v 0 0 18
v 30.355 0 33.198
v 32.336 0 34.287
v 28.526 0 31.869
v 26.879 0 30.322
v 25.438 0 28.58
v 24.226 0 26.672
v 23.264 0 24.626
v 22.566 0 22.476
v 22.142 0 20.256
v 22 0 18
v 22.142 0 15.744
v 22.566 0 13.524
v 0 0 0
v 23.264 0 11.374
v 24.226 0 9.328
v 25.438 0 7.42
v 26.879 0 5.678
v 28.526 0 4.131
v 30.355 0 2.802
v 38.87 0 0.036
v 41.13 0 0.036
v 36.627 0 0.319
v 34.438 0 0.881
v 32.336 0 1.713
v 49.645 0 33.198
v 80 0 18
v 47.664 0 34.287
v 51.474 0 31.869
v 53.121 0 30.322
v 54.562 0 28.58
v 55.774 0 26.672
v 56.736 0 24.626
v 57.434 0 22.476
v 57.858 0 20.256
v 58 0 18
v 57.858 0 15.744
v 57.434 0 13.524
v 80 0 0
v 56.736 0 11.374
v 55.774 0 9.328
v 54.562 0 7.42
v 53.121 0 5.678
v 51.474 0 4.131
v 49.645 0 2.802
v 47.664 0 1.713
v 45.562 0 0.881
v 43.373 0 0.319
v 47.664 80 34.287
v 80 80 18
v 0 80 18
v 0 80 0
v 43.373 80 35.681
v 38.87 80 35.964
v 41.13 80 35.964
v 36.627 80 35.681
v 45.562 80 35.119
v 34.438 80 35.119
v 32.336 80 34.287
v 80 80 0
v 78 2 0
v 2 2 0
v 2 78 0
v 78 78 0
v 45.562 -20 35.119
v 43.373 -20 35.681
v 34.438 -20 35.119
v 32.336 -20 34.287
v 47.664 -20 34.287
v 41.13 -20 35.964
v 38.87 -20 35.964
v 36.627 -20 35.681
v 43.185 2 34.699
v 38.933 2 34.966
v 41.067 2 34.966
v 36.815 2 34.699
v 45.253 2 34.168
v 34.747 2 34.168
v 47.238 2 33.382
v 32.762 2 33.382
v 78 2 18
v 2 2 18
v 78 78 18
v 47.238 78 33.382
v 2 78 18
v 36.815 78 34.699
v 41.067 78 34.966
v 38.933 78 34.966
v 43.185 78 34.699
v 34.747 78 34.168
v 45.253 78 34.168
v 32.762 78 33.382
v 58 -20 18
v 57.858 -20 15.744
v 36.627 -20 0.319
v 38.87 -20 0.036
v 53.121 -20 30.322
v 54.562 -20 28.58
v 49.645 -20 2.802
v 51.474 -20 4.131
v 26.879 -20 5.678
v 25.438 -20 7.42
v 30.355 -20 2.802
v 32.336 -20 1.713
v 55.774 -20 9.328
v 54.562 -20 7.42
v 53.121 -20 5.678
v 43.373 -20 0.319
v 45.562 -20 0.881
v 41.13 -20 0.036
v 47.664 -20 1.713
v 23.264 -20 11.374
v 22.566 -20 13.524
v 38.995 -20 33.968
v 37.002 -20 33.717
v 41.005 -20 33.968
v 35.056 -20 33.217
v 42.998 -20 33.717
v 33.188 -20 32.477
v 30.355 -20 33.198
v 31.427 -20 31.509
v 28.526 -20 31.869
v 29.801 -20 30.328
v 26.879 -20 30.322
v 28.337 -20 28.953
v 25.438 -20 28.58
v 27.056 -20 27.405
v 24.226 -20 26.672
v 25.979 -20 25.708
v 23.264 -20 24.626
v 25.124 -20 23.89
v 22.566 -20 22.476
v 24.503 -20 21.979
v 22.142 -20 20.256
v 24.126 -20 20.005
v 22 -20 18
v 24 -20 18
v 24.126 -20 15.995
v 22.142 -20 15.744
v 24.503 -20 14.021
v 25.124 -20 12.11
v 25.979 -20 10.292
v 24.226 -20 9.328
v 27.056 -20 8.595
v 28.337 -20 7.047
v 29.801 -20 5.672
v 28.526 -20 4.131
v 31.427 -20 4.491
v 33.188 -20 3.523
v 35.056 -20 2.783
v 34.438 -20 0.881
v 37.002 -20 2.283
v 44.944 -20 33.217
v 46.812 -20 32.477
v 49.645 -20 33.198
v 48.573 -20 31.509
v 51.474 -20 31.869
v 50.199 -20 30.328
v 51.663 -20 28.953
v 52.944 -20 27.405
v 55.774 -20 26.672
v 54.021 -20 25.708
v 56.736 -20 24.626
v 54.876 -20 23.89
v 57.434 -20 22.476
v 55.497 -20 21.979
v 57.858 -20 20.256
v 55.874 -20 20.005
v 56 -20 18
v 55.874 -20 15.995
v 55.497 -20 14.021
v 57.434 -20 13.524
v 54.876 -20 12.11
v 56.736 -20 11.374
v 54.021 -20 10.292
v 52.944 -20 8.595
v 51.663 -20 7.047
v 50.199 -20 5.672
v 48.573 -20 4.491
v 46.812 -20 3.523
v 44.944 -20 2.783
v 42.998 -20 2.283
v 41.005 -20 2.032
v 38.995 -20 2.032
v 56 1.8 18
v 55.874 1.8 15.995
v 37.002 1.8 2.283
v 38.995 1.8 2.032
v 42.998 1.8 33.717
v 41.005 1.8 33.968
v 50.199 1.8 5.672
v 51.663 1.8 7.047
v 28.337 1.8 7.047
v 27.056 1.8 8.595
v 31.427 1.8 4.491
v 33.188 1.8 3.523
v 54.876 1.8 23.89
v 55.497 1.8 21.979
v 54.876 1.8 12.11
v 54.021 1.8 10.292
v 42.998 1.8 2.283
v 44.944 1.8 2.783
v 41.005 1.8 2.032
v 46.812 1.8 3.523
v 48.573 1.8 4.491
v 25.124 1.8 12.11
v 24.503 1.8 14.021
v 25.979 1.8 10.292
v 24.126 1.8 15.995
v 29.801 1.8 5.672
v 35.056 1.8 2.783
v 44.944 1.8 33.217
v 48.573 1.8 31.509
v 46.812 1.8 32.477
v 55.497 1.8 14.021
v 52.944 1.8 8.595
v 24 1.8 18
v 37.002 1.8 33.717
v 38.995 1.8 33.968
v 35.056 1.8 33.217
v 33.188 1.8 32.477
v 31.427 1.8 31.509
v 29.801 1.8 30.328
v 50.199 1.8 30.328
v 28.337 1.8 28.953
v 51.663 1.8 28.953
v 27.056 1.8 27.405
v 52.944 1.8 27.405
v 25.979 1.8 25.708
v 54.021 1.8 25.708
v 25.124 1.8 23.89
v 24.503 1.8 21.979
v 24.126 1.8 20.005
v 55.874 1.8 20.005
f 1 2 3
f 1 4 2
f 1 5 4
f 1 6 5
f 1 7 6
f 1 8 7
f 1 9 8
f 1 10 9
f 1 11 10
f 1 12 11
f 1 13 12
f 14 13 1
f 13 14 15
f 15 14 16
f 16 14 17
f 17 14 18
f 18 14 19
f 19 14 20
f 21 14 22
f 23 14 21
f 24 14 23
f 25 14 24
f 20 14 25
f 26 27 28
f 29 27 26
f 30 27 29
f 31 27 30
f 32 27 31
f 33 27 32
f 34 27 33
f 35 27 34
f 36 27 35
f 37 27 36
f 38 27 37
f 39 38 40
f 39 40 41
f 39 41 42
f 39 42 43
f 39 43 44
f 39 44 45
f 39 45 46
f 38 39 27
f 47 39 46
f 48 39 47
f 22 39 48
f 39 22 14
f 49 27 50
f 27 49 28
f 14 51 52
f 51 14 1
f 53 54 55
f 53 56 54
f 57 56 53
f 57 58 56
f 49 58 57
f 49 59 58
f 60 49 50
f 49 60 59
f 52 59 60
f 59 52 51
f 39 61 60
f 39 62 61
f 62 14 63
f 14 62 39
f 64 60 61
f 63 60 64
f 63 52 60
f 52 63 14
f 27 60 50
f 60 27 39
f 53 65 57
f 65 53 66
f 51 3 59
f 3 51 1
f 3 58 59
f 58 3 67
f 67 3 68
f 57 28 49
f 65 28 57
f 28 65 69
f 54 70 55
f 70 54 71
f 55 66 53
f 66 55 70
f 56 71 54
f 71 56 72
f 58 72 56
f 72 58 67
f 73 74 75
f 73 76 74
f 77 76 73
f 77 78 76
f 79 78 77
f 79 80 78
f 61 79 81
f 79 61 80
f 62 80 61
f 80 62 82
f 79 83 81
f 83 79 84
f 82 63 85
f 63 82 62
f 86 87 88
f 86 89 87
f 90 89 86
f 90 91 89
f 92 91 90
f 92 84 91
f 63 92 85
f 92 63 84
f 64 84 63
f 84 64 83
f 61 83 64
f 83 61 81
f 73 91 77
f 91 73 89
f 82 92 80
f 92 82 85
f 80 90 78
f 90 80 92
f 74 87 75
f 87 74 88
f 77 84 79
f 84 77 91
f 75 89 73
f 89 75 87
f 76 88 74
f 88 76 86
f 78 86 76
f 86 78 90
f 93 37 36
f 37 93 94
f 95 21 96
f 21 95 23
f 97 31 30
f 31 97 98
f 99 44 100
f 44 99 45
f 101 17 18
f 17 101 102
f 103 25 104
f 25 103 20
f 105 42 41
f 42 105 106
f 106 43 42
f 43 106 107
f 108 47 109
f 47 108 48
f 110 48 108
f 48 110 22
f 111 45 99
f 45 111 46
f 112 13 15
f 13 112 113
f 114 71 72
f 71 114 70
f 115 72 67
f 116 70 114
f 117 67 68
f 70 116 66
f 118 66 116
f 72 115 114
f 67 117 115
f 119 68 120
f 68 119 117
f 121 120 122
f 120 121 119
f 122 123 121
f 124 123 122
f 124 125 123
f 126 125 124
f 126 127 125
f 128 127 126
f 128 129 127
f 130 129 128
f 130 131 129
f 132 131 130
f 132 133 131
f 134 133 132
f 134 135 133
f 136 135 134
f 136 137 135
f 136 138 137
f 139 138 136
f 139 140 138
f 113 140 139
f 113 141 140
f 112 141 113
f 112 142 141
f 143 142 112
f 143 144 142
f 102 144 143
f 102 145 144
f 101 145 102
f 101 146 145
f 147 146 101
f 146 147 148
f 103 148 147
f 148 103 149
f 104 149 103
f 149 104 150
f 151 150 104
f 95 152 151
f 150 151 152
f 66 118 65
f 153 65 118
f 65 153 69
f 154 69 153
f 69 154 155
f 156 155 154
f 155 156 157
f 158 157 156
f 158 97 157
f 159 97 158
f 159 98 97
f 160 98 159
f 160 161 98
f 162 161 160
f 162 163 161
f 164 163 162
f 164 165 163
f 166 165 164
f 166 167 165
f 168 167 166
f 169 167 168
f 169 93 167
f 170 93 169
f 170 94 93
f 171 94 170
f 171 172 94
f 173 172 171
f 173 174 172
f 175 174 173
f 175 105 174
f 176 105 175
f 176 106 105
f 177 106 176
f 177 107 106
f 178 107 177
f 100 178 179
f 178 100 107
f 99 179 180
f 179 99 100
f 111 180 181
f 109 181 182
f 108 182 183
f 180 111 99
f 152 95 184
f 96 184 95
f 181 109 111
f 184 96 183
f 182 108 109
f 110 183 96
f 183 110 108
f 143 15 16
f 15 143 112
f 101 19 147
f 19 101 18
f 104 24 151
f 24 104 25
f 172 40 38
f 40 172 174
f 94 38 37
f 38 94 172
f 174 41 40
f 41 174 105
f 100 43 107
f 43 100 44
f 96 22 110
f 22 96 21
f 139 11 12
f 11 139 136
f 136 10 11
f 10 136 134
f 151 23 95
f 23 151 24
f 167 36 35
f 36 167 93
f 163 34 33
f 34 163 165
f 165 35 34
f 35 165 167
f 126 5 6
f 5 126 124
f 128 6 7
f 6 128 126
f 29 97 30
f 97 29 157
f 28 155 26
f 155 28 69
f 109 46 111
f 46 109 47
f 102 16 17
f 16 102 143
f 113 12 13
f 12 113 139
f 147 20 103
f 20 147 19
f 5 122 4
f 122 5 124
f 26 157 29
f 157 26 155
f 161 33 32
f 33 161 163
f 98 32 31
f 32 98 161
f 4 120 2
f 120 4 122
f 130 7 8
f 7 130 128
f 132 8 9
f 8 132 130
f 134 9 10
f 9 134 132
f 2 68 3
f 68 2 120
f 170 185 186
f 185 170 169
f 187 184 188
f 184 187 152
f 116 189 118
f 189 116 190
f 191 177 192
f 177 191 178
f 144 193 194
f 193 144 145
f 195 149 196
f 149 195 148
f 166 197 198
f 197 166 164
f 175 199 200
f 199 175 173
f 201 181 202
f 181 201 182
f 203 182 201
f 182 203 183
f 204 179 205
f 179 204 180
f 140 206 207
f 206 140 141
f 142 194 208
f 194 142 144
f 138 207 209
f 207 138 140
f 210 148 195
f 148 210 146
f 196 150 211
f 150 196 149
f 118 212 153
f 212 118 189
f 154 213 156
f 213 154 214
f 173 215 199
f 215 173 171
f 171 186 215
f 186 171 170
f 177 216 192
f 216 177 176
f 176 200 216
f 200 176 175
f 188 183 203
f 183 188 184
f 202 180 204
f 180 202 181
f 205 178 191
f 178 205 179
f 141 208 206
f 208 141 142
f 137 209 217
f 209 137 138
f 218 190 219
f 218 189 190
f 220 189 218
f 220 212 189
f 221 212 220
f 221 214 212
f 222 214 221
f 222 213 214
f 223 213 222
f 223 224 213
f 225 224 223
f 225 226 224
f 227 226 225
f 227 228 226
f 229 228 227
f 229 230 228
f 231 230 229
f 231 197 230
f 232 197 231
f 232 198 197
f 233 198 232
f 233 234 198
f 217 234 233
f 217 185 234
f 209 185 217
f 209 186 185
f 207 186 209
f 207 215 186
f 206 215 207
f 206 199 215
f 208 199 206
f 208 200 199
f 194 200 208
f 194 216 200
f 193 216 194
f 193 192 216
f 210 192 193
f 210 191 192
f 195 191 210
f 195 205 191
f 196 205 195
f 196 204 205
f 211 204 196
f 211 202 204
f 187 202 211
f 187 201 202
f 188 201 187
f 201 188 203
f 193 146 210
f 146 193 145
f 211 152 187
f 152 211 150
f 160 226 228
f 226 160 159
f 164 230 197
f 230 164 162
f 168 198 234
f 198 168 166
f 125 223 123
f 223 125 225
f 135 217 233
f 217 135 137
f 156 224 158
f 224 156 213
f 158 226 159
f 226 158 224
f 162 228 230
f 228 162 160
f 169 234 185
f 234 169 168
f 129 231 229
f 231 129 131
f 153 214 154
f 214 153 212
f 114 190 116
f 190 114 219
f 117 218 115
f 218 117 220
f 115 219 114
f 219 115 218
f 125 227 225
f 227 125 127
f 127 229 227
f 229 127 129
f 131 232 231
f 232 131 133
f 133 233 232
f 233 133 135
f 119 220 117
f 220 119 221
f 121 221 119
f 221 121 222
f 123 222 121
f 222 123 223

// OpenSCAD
$fn=50;

layerHeigth=0.2;

fanXY=80;
fanZ=18;

cutoutHoleR=36/2;

wallThickness=2;


module fanOut()
{
  difference() {

    union()
    {
      difference() {
        hull()
        {
          cube([fanXY,fanXY,fanZ]);
          translate([fanXY/2,0,fanZ]) rotate([-90,0,0]) cylinder(r=cutoutHoleR,h=fanXY);
        }
        hull()
        {
          translate([wallThickness,wallThickness,0]) cube([fanXY-wallThickness*2,fanXY-wallThickness*2,fanZ]);
          translate([fanXY/2,wallThickness,fanZ]) rotate([-90,0,0]) cylinder(r=cutoutHoleR-wallThickness/2,h=fanXY-wallThickness*2);

        }
      }
      translate([fanXY/2,-20,cutoutHoleR]) rotate([-90,0,0]) cylinder(r=cutoutHoleR,h=20);
    }
    translate([fanXY/2,-20,cutoutHoleR]) rotate([-90,0,0]) cylinder(r=cutoutHoleR-wallThickness,h=20+wallThickness-layerHeigth);
  }
}
fanOut();
